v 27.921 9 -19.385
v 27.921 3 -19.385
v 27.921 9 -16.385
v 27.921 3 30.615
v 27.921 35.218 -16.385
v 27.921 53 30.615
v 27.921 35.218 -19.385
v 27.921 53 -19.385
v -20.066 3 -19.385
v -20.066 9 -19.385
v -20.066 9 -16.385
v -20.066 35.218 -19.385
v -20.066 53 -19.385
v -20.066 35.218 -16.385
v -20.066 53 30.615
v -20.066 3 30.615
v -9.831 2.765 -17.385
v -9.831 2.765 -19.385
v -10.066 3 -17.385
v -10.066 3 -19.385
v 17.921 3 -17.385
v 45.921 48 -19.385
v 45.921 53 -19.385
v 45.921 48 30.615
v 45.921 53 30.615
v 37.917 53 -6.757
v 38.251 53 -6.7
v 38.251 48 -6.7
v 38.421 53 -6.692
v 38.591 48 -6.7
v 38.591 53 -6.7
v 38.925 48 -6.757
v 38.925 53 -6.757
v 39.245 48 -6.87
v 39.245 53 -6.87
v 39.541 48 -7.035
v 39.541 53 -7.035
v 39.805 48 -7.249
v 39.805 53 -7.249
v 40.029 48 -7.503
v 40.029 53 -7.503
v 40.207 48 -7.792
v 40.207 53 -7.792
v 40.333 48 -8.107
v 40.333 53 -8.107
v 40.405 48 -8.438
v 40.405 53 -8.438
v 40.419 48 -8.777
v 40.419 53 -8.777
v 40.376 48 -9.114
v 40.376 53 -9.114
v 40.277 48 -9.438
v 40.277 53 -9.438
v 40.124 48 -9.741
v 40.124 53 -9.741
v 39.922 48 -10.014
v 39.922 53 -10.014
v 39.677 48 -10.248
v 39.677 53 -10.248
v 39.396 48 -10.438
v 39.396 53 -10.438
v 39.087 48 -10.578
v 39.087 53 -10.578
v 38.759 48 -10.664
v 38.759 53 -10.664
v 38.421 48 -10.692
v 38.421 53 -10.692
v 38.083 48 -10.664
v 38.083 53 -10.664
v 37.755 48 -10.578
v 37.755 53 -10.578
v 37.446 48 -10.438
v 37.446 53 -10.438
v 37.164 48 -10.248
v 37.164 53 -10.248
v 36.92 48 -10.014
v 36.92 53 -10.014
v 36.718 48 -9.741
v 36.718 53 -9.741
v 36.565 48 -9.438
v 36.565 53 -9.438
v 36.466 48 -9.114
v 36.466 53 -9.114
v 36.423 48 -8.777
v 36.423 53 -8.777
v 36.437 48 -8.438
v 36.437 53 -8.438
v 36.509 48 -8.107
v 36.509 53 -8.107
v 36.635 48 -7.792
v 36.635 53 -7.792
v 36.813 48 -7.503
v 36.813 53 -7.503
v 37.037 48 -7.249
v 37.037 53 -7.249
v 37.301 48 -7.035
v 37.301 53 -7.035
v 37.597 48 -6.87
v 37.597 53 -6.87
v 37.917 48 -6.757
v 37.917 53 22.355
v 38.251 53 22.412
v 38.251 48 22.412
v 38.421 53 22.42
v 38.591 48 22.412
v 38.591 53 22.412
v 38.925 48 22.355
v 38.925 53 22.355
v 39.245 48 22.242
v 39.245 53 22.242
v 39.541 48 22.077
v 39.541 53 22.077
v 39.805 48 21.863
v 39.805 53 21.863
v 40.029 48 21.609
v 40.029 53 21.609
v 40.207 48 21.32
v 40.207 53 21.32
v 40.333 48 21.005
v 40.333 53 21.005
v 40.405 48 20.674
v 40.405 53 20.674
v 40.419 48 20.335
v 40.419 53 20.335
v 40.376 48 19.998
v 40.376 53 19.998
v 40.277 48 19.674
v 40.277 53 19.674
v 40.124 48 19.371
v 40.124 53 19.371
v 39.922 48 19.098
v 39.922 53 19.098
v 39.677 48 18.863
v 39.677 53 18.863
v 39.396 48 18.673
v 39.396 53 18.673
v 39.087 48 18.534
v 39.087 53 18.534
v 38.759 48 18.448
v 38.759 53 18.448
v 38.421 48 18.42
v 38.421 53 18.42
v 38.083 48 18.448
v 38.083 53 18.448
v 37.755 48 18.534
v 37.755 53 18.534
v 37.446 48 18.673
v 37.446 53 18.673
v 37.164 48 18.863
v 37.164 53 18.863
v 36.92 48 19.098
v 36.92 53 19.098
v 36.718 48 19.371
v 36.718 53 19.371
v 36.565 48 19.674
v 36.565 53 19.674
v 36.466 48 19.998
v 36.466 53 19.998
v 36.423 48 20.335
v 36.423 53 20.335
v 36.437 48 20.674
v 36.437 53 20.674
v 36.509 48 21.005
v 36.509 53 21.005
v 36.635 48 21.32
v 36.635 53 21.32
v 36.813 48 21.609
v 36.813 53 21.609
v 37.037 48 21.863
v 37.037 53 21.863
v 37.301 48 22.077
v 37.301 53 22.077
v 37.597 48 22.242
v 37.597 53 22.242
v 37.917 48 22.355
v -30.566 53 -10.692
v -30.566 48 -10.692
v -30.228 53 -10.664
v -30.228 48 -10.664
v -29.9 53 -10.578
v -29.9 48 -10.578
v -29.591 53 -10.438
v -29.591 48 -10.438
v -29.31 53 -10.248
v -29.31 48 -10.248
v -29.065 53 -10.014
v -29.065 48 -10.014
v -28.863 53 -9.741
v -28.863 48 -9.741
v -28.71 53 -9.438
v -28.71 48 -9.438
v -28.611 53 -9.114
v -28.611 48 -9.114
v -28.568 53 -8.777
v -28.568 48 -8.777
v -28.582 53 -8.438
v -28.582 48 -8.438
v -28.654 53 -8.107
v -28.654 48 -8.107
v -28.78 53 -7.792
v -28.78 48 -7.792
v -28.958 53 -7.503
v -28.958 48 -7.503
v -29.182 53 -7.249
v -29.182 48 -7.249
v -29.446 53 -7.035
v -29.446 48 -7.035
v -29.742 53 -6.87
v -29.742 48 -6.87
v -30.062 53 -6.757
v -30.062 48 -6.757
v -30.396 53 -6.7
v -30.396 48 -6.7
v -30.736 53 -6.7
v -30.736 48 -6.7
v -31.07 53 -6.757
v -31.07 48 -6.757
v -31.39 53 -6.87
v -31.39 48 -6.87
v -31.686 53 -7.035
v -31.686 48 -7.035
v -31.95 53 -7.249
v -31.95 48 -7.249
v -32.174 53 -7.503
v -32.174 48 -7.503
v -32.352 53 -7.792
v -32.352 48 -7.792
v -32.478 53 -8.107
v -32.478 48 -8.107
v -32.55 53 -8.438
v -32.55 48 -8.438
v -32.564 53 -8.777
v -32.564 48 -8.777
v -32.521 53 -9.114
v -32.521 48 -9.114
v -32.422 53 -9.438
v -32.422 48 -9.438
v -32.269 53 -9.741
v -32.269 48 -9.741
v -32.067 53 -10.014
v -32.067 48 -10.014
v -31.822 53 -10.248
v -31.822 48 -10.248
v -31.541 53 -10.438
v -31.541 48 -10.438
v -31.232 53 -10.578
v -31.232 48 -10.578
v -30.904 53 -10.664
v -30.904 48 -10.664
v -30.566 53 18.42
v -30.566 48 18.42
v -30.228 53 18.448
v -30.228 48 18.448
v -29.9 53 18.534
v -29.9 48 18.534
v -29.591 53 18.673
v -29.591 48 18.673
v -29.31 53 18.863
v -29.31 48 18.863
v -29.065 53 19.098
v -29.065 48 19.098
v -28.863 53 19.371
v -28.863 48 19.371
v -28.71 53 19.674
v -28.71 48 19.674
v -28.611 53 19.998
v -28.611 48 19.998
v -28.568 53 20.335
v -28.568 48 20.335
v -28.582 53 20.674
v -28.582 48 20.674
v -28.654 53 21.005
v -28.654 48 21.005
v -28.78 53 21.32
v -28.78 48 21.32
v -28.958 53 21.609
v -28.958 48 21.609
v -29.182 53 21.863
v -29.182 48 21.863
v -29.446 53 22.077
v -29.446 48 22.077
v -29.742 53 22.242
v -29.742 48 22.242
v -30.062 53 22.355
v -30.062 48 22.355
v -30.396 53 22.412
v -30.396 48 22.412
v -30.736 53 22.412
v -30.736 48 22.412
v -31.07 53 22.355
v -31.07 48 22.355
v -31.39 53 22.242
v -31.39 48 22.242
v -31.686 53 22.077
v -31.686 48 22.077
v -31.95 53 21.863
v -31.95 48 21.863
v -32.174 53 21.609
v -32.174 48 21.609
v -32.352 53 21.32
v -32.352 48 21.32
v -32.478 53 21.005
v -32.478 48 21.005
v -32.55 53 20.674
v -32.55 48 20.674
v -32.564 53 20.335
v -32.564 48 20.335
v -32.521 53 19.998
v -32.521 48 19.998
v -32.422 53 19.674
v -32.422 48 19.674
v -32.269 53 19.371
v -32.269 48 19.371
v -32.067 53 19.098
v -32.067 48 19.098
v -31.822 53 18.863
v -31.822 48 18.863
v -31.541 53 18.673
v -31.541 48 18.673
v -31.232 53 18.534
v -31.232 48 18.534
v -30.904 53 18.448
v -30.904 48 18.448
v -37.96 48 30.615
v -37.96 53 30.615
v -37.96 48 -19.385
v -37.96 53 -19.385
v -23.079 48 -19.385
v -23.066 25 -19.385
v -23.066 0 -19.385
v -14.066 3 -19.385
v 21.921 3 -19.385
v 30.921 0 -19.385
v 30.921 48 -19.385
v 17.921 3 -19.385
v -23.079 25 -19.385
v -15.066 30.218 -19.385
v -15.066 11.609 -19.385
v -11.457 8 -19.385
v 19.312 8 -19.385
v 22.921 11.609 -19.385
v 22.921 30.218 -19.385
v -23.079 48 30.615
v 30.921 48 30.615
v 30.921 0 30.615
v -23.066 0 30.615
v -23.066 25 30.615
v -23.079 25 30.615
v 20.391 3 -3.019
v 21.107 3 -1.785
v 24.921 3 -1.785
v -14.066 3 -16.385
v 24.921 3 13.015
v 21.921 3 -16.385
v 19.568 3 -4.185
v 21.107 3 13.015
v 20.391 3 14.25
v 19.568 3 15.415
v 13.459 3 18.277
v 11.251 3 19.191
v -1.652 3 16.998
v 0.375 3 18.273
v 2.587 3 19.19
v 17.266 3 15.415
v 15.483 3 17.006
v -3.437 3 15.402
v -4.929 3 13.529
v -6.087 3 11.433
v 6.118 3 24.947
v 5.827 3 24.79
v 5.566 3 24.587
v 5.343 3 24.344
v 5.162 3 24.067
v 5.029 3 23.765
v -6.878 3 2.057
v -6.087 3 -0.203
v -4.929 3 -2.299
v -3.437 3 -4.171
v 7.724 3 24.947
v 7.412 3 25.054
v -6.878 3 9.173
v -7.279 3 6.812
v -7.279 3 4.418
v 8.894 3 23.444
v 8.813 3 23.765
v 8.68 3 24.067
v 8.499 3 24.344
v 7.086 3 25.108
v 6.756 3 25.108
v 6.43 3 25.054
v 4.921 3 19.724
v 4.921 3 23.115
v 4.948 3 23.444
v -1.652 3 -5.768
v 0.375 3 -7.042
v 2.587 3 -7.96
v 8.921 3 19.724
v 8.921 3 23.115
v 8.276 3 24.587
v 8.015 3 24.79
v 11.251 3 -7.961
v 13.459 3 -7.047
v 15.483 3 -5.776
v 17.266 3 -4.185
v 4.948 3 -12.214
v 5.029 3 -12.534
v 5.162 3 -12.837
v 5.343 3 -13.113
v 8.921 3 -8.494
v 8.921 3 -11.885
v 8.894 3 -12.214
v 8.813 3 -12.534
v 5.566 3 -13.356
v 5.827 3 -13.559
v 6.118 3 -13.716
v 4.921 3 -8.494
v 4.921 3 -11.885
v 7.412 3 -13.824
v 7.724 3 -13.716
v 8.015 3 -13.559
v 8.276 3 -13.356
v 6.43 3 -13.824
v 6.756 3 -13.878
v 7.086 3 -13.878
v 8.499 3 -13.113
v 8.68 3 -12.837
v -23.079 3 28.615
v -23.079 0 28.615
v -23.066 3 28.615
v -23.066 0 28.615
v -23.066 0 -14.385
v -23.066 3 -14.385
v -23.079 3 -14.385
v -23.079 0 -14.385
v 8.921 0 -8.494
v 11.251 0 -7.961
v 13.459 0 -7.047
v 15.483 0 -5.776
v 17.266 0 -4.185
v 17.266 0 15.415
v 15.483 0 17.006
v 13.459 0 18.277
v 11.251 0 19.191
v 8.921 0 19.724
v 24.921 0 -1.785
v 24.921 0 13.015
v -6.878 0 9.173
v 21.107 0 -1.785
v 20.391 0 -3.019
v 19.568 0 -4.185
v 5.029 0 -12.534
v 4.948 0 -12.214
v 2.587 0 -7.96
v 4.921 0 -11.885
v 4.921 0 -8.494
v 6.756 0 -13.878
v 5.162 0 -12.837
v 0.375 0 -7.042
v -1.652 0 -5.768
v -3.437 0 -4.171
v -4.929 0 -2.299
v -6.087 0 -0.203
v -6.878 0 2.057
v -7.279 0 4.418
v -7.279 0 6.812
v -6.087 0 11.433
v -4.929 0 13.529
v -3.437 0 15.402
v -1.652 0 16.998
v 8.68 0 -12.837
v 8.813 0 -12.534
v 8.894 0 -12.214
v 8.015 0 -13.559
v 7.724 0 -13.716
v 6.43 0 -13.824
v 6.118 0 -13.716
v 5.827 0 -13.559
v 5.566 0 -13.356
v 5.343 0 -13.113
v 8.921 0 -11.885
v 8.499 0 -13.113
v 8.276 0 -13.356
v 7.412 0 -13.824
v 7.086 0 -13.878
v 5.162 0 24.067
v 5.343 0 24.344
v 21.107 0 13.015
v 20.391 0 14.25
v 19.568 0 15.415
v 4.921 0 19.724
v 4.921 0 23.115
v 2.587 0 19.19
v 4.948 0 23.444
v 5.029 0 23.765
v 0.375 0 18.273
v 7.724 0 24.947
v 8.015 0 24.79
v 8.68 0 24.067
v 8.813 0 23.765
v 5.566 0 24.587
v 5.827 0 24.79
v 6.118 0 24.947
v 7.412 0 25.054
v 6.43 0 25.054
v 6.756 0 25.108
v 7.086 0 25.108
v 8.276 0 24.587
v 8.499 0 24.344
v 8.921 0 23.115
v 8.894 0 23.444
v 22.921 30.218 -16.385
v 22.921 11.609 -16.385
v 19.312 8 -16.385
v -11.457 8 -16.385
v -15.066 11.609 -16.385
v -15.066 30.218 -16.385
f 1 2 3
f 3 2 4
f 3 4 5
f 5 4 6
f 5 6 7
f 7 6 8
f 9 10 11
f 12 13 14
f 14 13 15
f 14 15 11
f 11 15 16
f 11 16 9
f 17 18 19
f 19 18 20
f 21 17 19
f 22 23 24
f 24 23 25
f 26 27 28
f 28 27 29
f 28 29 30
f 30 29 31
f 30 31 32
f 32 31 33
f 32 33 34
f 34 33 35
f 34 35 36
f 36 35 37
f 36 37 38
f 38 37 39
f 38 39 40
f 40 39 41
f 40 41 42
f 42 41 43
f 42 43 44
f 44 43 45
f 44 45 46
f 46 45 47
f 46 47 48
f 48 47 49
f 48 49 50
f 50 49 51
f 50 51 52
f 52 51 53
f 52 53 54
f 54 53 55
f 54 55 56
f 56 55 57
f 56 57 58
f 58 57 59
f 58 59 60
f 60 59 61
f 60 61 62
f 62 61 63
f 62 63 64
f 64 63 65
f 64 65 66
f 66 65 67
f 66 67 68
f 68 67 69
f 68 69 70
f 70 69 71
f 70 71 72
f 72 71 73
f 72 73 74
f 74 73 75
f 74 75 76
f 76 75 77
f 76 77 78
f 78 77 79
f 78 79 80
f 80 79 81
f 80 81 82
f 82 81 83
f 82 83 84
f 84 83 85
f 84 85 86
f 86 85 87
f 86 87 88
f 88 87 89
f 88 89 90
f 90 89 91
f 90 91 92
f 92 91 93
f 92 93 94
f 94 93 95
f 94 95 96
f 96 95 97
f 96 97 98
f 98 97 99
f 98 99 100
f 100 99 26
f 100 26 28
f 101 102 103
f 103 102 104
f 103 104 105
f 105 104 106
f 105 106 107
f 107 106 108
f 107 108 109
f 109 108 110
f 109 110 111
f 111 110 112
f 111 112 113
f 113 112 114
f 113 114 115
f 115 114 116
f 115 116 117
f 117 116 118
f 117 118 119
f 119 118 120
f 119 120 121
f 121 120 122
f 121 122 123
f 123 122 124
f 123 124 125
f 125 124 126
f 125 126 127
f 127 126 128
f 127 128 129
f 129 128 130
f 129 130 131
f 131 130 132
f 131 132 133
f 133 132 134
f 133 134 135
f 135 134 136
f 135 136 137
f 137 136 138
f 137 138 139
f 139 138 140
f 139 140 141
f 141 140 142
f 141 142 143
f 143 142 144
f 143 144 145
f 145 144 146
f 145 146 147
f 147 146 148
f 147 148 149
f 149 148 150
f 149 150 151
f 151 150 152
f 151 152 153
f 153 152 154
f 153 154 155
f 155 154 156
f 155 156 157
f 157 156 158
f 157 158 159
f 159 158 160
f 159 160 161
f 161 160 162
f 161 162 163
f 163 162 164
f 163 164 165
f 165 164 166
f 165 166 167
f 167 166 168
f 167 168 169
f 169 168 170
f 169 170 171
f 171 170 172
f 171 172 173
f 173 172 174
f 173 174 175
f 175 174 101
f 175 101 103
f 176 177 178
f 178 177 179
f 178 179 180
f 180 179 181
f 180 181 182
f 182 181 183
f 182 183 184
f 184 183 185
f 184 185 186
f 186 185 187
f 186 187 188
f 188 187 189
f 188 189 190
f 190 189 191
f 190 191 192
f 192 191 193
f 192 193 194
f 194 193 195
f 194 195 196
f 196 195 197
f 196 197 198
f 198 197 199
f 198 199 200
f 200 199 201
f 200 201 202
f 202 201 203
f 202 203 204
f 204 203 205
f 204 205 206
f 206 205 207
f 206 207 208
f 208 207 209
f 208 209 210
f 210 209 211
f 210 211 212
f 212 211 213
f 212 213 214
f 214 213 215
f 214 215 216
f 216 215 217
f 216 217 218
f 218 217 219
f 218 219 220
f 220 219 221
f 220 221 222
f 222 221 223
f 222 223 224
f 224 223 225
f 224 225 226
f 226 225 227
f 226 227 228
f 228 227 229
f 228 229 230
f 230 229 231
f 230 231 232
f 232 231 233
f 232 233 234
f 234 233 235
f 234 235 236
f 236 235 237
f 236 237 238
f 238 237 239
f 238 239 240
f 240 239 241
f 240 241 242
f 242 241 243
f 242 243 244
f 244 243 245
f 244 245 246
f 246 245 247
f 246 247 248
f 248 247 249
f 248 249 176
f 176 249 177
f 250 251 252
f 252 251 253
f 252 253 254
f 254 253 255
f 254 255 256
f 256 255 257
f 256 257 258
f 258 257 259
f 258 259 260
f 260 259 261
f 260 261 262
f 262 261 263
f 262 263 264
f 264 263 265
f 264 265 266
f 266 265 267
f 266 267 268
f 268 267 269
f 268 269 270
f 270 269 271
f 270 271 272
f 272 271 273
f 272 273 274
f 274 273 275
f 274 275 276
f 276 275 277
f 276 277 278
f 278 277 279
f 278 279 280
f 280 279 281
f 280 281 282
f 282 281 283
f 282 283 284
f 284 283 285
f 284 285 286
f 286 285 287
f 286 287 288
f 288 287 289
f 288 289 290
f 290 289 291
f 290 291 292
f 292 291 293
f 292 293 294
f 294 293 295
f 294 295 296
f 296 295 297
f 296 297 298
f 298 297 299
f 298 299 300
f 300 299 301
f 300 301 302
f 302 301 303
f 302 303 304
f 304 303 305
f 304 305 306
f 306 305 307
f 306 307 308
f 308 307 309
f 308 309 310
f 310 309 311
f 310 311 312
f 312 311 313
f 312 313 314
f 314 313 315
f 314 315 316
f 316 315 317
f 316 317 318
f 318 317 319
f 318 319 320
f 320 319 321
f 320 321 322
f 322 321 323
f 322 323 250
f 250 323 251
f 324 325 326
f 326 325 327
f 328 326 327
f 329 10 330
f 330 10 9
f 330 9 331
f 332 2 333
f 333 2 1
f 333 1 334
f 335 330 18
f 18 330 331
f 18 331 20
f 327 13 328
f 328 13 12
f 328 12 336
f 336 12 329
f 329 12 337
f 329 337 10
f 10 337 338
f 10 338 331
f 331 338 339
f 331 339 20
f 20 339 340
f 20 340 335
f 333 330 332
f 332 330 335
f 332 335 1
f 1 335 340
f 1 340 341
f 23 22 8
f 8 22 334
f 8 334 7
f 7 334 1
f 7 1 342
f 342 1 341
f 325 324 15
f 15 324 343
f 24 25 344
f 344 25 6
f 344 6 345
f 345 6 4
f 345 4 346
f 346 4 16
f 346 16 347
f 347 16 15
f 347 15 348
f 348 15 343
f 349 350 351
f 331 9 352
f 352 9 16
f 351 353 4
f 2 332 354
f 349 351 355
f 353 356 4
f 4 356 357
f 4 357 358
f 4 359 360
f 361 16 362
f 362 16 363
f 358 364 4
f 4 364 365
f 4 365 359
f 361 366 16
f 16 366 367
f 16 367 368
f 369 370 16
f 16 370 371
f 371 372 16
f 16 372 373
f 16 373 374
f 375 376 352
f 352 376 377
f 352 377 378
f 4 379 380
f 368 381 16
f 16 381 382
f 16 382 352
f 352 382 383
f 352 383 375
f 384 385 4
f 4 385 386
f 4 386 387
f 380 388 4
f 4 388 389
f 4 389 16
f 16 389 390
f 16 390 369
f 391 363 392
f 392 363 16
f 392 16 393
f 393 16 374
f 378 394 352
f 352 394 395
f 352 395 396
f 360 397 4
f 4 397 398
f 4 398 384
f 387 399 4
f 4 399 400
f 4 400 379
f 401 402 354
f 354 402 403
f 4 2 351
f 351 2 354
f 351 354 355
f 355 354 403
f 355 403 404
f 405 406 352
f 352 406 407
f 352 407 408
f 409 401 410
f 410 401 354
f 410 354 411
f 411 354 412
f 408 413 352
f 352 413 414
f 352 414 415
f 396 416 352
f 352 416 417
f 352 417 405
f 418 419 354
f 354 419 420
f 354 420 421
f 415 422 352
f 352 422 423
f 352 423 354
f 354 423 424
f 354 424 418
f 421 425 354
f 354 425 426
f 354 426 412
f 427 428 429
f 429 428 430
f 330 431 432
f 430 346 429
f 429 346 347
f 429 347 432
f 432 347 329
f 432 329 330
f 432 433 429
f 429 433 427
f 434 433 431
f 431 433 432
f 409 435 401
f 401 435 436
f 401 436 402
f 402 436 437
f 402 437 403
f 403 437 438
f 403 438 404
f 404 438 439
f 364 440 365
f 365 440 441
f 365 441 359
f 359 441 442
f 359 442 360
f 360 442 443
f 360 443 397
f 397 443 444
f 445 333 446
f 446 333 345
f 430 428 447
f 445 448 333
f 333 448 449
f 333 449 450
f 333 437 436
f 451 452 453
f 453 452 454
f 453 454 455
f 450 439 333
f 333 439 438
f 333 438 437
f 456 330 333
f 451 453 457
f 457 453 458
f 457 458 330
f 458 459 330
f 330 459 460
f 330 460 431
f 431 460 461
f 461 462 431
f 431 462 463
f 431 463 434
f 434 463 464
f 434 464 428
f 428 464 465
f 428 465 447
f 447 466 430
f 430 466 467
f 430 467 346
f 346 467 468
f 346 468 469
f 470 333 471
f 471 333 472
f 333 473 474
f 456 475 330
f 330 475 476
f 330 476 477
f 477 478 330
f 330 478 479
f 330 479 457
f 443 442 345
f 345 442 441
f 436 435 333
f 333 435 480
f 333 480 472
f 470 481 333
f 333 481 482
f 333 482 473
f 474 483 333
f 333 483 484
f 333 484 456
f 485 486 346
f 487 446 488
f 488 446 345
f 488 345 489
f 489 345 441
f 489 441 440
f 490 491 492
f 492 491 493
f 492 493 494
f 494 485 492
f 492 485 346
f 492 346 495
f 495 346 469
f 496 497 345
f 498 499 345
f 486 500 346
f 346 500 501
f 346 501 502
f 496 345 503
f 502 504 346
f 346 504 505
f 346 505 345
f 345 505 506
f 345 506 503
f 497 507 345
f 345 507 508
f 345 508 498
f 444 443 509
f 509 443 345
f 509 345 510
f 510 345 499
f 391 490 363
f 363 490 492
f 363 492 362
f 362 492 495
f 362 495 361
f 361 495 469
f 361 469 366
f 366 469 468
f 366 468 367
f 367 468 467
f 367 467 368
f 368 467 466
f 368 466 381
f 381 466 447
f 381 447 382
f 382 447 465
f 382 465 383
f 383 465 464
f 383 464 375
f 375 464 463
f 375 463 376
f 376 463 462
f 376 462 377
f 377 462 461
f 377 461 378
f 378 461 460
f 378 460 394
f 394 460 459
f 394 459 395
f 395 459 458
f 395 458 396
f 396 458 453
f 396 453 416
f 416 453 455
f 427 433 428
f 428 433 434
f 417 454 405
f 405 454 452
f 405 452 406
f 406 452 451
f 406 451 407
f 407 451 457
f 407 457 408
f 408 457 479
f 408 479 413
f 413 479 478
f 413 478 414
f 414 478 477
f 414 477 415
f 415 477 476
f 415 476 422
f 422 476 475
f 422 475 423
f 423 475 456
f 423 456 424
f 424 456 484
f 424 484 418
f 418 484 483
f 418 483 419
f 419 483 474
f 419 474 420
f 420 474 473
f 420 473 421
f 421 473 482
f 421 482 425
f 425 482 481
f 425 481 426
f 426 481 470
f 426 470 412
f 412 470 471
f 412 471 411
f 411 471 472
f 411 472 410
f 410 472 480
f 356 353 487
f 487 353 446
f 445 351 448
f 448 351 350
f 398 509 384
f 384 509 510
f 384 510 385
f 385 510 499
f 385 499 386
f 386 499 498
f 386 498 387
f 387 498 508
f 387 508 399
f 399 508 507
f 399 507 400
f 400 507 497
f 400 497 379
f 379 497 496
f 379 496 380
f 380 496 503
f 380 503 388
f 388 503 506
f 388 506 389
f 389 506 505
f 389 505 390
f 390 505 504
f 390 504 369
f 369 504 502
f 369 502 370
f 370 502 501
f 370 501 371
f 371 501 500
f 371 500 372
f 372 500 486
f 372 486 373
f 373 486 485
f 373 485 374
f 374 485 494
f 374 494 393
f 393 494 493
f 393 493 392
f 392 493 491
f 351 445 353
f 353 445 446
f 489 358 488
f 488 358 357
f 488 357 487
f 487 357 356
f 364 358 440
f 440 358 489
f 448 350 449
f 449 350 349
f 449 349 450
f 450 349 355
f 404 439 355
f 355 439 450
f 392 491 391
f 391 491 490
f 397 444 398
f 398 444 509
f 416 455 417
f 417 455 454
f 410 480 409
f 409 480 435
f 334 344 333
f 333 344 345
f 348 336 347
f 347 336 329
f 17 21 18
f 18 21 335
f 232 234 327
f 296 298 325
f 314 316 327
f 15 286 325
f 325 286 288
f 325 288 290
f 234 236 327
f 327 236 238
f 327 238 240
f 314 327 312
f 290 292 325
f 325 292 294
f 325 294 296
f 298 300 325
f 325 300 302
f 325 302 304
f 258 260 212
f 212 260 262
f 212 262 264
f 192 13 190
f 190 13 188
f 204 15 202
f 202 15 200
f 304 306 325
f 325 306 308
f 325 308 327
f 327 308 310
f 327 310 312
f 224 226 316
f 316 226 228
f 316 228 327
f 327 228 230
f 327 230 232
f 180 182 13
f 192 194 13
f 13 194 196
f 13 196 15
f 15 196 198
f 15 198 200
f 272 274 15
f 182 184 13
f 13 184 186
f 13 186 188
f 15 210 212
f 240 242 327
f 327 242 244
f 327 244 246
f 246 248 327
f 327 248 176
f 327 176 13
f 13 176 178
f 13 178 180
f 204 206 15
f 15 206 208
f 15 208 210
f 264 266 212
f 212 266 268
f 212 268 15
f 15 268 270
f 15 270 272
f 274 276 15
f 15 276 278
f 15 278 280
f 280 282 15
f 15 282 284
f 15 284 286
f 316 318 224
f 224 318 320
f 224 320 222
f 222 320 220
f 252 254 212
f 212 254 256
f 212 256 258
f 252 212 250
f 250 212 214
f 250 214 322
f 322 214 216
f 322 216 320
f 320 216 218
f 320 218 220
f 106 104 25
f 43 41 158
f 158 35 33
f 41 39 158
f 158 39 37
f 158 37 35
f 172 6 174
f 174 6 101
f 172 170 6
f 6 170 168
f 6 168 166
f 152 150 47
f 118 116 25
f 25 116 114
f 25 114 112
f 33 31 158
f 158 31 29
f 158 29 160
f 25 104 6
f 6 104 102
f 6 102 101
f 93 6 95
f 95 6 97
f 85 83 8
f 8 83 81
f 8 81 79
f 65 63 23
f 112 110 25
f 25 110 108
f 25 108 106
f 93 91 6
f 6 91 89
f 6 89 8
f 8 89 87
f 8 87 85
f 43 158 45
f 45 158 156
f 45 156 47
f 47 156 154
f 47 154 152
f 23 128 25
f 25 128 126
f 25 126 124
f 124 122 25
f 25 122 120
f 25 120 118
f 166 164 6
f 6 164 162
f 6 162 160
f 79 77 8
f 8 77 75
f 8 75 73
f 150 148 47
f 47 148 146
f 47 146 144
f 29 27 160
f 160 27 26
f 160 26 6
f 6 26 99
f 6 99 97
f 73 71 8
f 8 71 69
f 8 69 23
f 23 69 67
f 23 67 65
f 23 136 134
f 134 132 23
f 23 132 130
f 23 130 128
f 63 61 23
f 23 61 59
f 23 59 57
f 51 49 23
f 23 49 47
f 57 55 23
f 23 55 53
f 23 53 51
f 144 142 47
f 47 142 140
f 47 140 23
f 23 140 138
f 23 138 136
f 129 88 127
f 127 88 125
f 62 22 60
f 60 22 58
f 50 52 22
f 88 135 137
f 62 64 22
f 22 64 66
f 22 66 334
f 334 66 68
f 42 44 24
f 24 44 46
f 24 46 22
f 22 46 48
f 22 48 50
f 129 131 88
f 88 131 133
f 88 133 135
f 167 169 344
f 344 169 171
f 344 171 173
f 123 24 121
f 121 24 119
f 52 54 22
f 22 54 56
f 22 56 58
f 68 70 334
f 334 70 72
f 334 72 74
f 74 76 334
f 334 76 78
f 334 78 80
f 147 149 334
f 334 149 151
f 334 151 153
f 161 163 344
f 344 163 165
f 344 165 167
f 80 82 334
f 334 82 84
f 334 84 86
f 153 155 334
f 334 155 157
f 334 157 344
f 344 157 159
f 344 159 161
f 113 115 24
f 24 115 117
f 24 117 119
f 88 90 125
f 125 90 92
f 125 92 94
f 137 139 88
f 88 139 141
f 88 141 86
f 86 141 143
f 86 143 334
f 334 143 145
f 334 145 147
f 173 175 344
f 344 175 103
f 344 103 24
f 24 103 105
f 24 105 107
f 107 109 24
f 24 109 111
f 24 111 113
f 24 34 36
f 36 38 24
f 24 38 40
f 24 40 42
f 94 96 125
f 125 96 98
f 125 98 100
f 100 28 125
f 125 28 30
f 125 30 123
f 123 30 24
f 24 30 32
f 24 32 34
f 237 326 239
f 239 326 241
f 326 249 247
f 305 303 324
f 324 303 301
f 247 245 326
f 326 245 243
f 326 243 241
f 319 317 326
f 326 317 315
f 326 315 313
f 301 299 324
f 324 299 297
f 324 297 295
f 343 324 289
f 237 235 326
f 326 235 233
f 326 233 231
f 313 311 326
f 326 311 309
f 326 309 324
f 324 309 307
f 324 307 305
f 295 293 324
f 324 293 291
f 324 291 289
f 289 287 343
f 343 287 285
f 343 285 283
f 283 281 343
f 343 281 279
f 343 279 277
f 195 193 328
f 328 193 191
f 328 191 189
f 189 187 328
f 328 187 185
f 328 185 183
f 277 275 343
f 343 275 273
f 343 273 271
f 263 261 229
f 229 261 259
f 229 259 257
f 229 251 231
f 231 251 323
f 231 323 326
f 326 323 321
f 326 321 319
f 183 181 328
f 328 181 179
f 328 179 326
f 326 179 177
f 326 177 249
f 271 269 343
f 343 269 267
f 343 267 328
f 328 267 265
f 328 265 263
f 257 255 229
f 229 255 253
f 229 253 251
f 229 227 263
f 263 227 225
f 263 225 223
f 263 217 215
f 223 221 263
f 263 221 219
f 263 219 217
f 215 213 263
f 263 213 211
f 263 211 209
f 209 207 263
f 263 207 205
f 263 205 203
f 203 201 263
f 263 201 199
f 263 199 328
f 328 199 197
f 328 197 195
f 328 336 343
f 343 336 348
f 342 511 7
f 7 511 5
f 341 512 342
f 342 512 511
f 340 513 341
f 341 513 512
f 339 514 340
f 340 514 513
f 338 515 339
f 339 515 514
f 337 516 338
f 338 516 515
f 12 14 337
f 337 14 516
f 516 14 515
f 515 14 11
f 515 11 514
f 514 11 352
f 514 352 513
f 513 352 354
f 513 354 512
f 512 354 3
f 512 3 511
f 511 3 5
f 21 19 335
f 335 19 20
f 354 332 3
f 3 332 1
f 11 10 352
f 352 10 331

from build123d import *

# Parameters (mm, degrees)
SKETCH1_W                = 50
SKETCH1_H                = 40
BOSS_EXTRUDE1_DEPTH      = 3
SKETCH6_R                = 2
CUT_EXTRUDE9_DEPTH       = 5
SKETCH16_W               = 14.8
SKETCH16_H               = 3
CUT_EXTRUDE10_DEPTH      = 0.5
SKETCH21_R               = 14.25
CUT_EXTRUDE15_DEPTH      = 4
CUT_EXTRUDE16_START      = -4
CUT_EXTRUDE16_DEPTH      = 4
SKETCH33_W               = 4
SKETCH33_H               = 35
CUT_EXTRUDE23_DEPTH      = 5
SKETCH34_W               = 49.986920535
SKETCH34_H               = 3
BOSS_EXTRUDE2_DEPTH      = 3
SKETCH35_W               = 50
SKETCH35_H               = 3
BOSS_EXTRUDE3_DEPTH      = 3
SKETCH36_W               = 46
SKETCH36_H               = 3
BOSS_EXTRUDE4_DEPTH      = 4
SKETCH38_W               = 3
SKETCH38_H               = 46
BOSS_EXTRUDE5_DEPTH      = 25
SKETCH39_W               = 45.535565308
SKETCH39_H               = 3
BOSS_EXTRUDE6_DEPTH      = 15
SKETCH40_W               = 46
SKETCH40_H               = 3
BOSS_EXTRUDE7_DEPTH      = 15
SKETCH41_W               = 0.464434692
SKETCH41_H               = 3
BOSS_EXTRUDE8_DEPTH      = 15
SKETCH42_R               = 2
CUT_EXTRUDE24_DEPTH      = 15
SKETCH43_R               = 2
CUT_EXTRUDE25_DEPTH      = 15
BOSS_EXTRUDE10_START     = 1
SKETCH44_W               = 14.986920535
SKETCH44_H               = 46
SKETCH44_R               = 2
BOSS_EXTRUDE10_DEPTH     = 1
BOSS_EXTRUDE11_START     = 1
SKETCH46_W               = 15
SKETCH46_H               = 46
SKETCH46_R               = 2
BOSS_EXTRUDE11_DEPTH     = 1
BOSS_EXTRUDE12_DEPTH     = 2
BOSS_EXTRUDE13_DEPTH     = 2
SKETCH49_W               = 47.986920535
SKETCH49_H               = 2
BOSS_EXTRUDE14_DEPTH     = 10
CUT_EXTRUDE26_DEPTH      = 10
SKETCH51_W               = 15
SKETCH51_H               = 50
SKETCH51_R               = 2
SKETCH51_W_2             = 3.013079465
SKETCH51_W_3             = 3
BOSS_EXTRUDE15_DEPTH     = 25
CUT_EXTRUDE27_DEPTH      = 63.345980453
CUT_EXTRUDE27_DEPTH_BACK = 63.345980453
SKETCH53_R               = 2
SKETCH54_W               = 15
SKETCH54_H               = 50
CUT_EXTRUDE28_DEPTH      = 48
SKETCH55_W               = 46
SKETCH55_H               = 4
CUT_EXTRUDE29_DEPTH      = 3
SKETCH56_W               = 5
SKETCH56_H               = 5
BOSS_EXTRUDE18_DEPTH     = 1
BOSS_EXTRUDE19_DEPTH     = 2
CUT_EXTRUDE30_DEPTH      = 3


with BuildPart() as part:
    # Sketch1 → Boss-Extrude1 (new body)
    with BuildSketch(Plane(origin=(0, 0, 0), x_dir=(1, 0, 0), z_dir=(0, 1, 0))):
        with Locations((1.920937393, -5.615172506)):
            Rectangle(SKETCH1_W, SKETCH1_H)
    extrude(amount=BOSS_EXTRUDE1_DEPTH)

    # Sketch6 → Cut-Extrude9 (cut)
    with BuildSketch(Plane.XZ):
        with Locations(Location((6.920937393, 23.115172506, 0), (0, 0, 270))):
            Circle(SKETCH6_R)
        with Locations(Location((6.920937393, -11.884827494, 0), (0, 0, 270))):
            Circle(SKETCH6_R)
        with BuildLine():
            Line((24.420937393, 13.015172506), (18.923020545, 13.015172506))
            ThreePointArc((18.923020545, 13.015172506), (-7.179062607, 5.615172506), (18.923020545, -1.784827494))
            Line((18.923020545, -1.784827494), (24.420937393, -1.784827494))
            Line((24.420937393, -1.784827494), (24.420937393, 5.615172506))
            Line((24.420937393, 5.615172506), (24.420937393, 13.015172506))
        make_face()
    extrude(amount=-CUT_EXTRUDE9_DEPTH, mode=Mode.SUBTRACT)

    # Sketch16 → Cut-Extrude10 (cut)
    with BuildSketch(Plane.ZY.offset(-24.420937393)):
        with Locations((5.615172506, 1.5)):
            Rectangle(SKETCH16_W, SKETCH16_H)
    extrude(amount=-CUT_EXTRUDE10_DEPTH, mode=Mode.SUBTRACT)

    # Sketch21 → Cut-Extrude15 (cut)
    with BuildSketch(Plane(origin=(0, 0, 0), x_dir=(-1, 0, 0), z_dir=(0, -1, 0))):
        with Locations((-6.920937393, -5.615172506)):
            Circle(SKETCH21_R)
    extrude(amount=-CUT_EXTRUDE15_DEPTH, mode=Mode.SUBTRACT)

    # Sketch22 → Cut-Extrude16 (cut)
    with BuildSketch(Plane(origin=(0, 3, 0), x_dir=(1, 0, 0), z_dir=(0, 1, 0)).offset(CUT_EXTRUDE16_START)):
        with BuildLine():
            ThreePointArc((21.106680727, 1.784827494), (20.39103932, 3.019158274), (19.568281538, 4.184827494))
            Line((19.568281538, 4.184827494), (17.266105347, 4.184827494))
            ThreePointArc((17.266105347, 4.184827494), (18.246250908, 3.03351374), (19.09888878, 1.784827494))
            Line((19.09888878, 1.784827494), (21.106680727, 1.784827494))
        make_face()
        with BuildLine():
            Line((17.266105347, -15.415172506), (19.568281538, -15.415172506))
            ThreePointArc((19.568281538, -15.415172506), (20.39103932, -14.249503286), (21.106680727, -13.015172506))
            Line((21.106680727, -13.015172506), (19.09888878, -13.015172506))
            ThreePointArc((19.09888878, -13.015172506), (18.246250908, -14.263858752), (17.266105347, -15.415172506))
        make_face()
    extrude(amount=CUT_EXTRUDE16_DEPTH, mode=Mode.SUBTRACT)

    # Sketch33 → Cut-Extrude23 (cut)
    with BuildSketch(Plane(origin=(0, 3, 0), x_dir=(1, 0, 0), z_dir=(0, 1, 0))):
        with Locations((6.920937393, -5.615172506)):
            Rectangle(SKETCH33_W, SKETCH33_H)
    extrude(amount=-CUT_EXTRUDE23_DEPTH, mode=Mode.SUBTRACT)

    # Sketch34 → Boss-Extrude2 (add)
    with BuildSketch(Plane(origin=(0, 0, -14.384827494), x_dir=(-1, 0, 0), z_dir=(0, 0, -1))):
        with Locations((-1.927477126, 1.5)):
            Rectangle(SKETCH34_W, SKETCH34_H)
    extrude(amount=BOSS_EXTRUDE2_DEPTH)

    # Sketch35 → Boss-Extrude3 (add)
    with BuildSketch(Plane.XY.offset(25.615172506)):
        with Locations((1.920937393, 1.5)):
            Rectangle(SKETCH35_W, SKETCH35_H)
    extrude(amount=BOSS_EXTRUDE3_DEPTH)

    # Sketch36 → Boss-Extrude4 (add)
    with BuildSketch(Plane(origin=(26.920937393, 0, 0), x_dir=(0, 0, -1), z_dir=(1, 0, 0))):
        with Locations((-5.615172506, 1.5)):
            Rectangle(SKETCH36_W, SKETCH36_H)
    extrude(amount=BOSS_EXTRUDE4_DEPTH)

    # Sketch38 → Boss-Extrude5 (add)
    with BuildSketch(Plane(origin=(0, 3, 0), x_dir=(1, 0, 0), z_dir=(0, 1, 0))):
        with Locations((29.420937393, -5.615172506)):
            Rectangle(SKETCH38_W, SKETCH38_H)
        with Locations((-21.565983142, -5.615172506)):
            Rectangle(SKETCH38_W, SKETCH38_H)
    extrude(amount=BOSS_EXTRUDE5_DEPTH)

    # Sketch39 → Boss-Extrude6 (add)
    with BuildSketch(Plane.ZY.offset(23.065983142)):
        with Locations((5.38295516, 26.5)):
            Rectangle(SKETCH39_W, SKETCH39_H)
    extrude(amount=BOSS_EXTRUDE6_DEPTH)

    # Sketch40 → Boss-Extrude7 (add)
    with BuildSketch(Plane(origin=(30.920937393, 0, 0), x_dir=(0, 0, -1), z_dir=(1, 0, 0))):
        with Locations((-5.615172506, 26.5)):
            Rectangle(SKETCH40_W, SKETCH40_H)
    extrude(amount=BOSS_EXTRUDE7_DEPTH)

    # Sketch41 → Boss-Extrude8 (add)
    with BuildSketch(Plane.ZY.offset(23.065983142)):
        with Locations((28.38295516, 26.5)):
            Rectangle(SKETCH41_W, SKETCH41_H)
    extrude(amount=BOSS_EXTRUDE8_DEPTH)

    # Sketch42 → Cut-Extrude24 (cut)
    with BuildSketch(Plane.XZ.offset(-25)):
        with Locations(Location((38.420937393, 20.419520332, 0), (0, 0, 270))):
            Circle(SKETCH42_R)
        with Locations(Location((38.420937393, -8.692413747, 0), (0, 0, 270))):
            Circle(SKETCH42_R)
    extrude(amount=-CUT_EXTRUDE24_DEPTH, mode=Mode.SUBTRACT)

    # Sketch43 → Cut-Extrude25 (cut)
    with BuildSketch(Plane.XZ.offset(-25)):
        with Locations(Location((-30.565983142, 20.419520332, 0), (0, 0, 270))):
            Circle(SKETCH43_R)
        with Locations(Location((-30.565983142, -8.692413747, 0), (0, 0, 270))):
            Circle(SKETCH43_R)
    extrude(amount=-CUT_EXTRUDE25_DEPTH, mode=Mode.SUBTRACT)

    # Sketch44 → Boss-Extrude10 (add)
    with BuildSketch(Plane.XZ.offset(-25).offset(BOSS_EXTRUDE10_START)):
        with Locations((-30.572522875, 5.615172506)):
            Rectangle(SKETCH44_W, SKETCH44_H)
        with Locations(Location((-30.565983142, -8.692413747, 0), (0, 0, 270))):
            Circle(SKETCH44_R, mode=Mode.SUBTRACT)
        with Locations(Location((-30.565983142, 20.419520332, 0), (0, 0, 270))):
            Circle(SKETCH44_R, mode=Mode.SUBTRACT)
    extrude(amount=-BOSS_EXTRUDE10_DEPTH)

    # Sketch46 → Boss-Extrude11 (add)
    with BuildSketch(Plane.XZ.offset(-25).offset(BOSS_EXTRUDE11_START)):
        with Locations((38.420937393, 5.615172506)):
            Rectangle(SKETCH46_W, SKETCH46_H)
        with Locations(Location((38.420937393, -8.692413747, 0), (0, 0, 270))):
            Circle(SKETCH46_R, mode=Mode.SUBTRACT)
        with Locations(Location((38.420937393, 20.419520332, 0), (0, 0, 270))):
            Circle(SKETCH46_R, mode=Mode.SUBTRACT)
    extrude(amount=-BOSS_EXTRUDE11_DEPTH)

    # Sketch47 → Boss-Extrude12 (add)
    with BuildSketch(Plane(origin=(0, 0, -17.384827494), x_dir=(-1, 0, 0), z_dir=(0, 0, -1))):
        Polygon((-27.920937393, 28), (-45.920937393, 28), (-45.920937393, 24), (-30.920937393, 24), (-30.920937393, 0), (23.065983142, 0), (23.065983142, 3), (23.065983142, 25), (23.079062607, 25), (23.079062607, 24), (37.960253495, 24), (37.960253495, 28), (20.065983142, 28), (20.065983142, 3), (-27.920937393, 3), align=None)
    extrude(amount=BOSS_EXTRUDE12_DEPTH)

    # Sketch48 → Boss-Extrude13 (add)
    with BuildSketch(Plane.XY.offset(28.615172506)):
        Polygon((-20.065983142, 28), (-37.960253495, 28), (-37.960253495, 24), (-23.079062607, 24), (-23.079062607, 25), (-23.065983142, 25), (-23.065983142, 3), (-23.065983142, 0), (30.920937393, 0), (30.920937393, 24), (45.920937393, 24), (45.920937393, 28), (27.920937393, 28), (27.920937393, 3), (-20.065983142, 3), align=None)
    extrude(amount=BOSS_EXTRUDE13_DEPTH)

    # Sketch49 → Boss-Extrude14 (add)
    with BuildSketch(Plane(origin=(0, 3, 0), x_dir=(1, 0, 0), z_dir=(0, 1, 0))):
        with Locations((3.927477126, 18.384827494)):
            Rectangle(SKETCH49_W, SKETCH49_H)
    extrude(amount=BOSS_EXTRUDE14_DEPTH)

    # Sketch50 → Cut-Extrude26 (cut)
    with BuildSketch(Plane.XY.offset(-17.384827494)):
        Polygon((-20.065983142, 13), (-9.830586805, 2.764603663), (17.920937393, 3), (27.920937393, 13), align=None)
    extrude(amount=-CUT_EXTRUDE26_DEPTH, mode=Mode.SUBTRACT)

    # Sketch51 → Boss-Extrude15 (add)
    # profile 1 of 4: a face of its own
    with BuildSketch(Plane(origin=(0, 28, 0), x_dir=(1, 0, 0), z_dir=(0, 1, 0))):
        with Locations((38.420937393, -5.615172506)):
            Rectangle(SKETCH51_W, SKETCH51_H)
        with Locations(Location((38.420937393, -20.419520332, 0), (0, 0, 90))):
            Circle(SKETCH51_R, mode=Mode.SUBTRACT)
        with Locations(Location((38.420937393, 8.692413747, 0), (0, 0, 90))):
            Circle(SKETCH51_R, mode=Mode.SUBTRACT)
    # profile 2 of 4: a face of its own
    with BuildSketch(Plane(origin=(0, 28, 0), x_dir=(1, 0, 0), z_dir=(0, 1, 0))):
        Polygon((-23.079062607, 19.384827494), (-37.960253495, 19.384827494), (-37.960253495, 17.384827494), (-37.960253495, -28.615172506), (-37.960253495, -30.615172506), (-23.079062607, -30.615172506), align=None)
    # profile 3 of 4: a face of its own
    with BuildSketch(Plane(origin=(0, 28, 0), x_dir=(1, 0, 0), z_dir=(0, 1, 0))):
        with Locations((-21.572522875, -5.615172506)):
            Rectangle(SKETCH51_W_2, SKETCH51_H)
    # profile 4 of 4: a face of its own
    with BuildSketch(Plane(origin=(0, 28, 0), x_dir=(1, 0, 0), z_dir=(0, 1, 0))):
        with Locations((29.420937393, -5.615172506)):
            Rectangle(SKETCH51_W_3, SKETCH51_H)
    extrude(amount=BOSS_EXTRUDE15_DEPTH)

    # Sketch53 → Cut-Extrude27 (cut, two sides: drawn at the far end of the back side and taken through both)
    with BuildSketch(Plane.XZ.offset(-24).offset(-CUT_EXTRUDE27_DEPTH_BACK)):
        with Locations(Location((-30.565983142, 20.419520332, 0), (0, 0, 270))):
            Circle(SKETCH53_R)
        with Locations(Location((-30.565983142, -8.692413747, 0), (0, 0, 270))):
            Circle(SKETCH53_R)
    extrude(amount=CUT_EXTRUDE27_DEPTH + CUT_EXTRUDE27_DEPTH_BACK, mode=Mode.SUBTRACT)

    # Sketch54 → Cut-Extrude28 (cut)
    with BuildSketch(Plane(origin=(0, 0, 0), x_dir=(-1, 0, 0), z_dir=(0, -1, 0))):
        Polygon((23.079062607, -30.615172506), (37.960253495, -30.615172506), (37.960253495, 19.384827494), (23.079062607, 19.384827494), (23.079062607, 14.384827494), (23.079062607, -28.615172506), align=None)
        with Locations((-38.420937393, -5.615172506)):
            Rectangle(SKETCH54_W, SKETCH54_H)
    extrude(amount=-CUT_EXTRUDE28_DEPTH, mode=Mode.SUBTRACT)


with BuildPart() as cut_extrude28_piece_1:
    # of the separate pieces the step leaves, piece 1, a body of its own (cut_extrude28_pieces)
    add(part.part.solids().sort_by_distance((-23.079062607, 0, -14.384827494))[0])

    # Sketch56 → Boss-Extrude18 (add)
    with BuildSketch(Plane.XY.offset(-17.384827494)):
        Polygon((-11.456856729, 8), (-15.065983142, 11.609126412), (-15.065983142, 8), align=None)
        Polygon((-6.456856729, 3), (-11.456856729, 8), (-15.065983142, 8), (-10.065983142, 3), align=None)
        Polygon((-15.065983142, 11.609126412), (-20.065983142, 16.609126412), (-20.065983142, 13), (-15.065983142, 8), align=None)
        Polygon((-20.065983142, 30.218252825), (-20.065983142, 16.609126412), (-15.065983142, 30.218252825), align=None)
        Polygon((-15.065983142, 30.218252825), (-20.065983142, 16.609126412), (-15.065983142, 11.609126412), align=None)
        Polygon((19.31181098, 8), (-11.456856729, 8), (-6.456856729, 3), (14.31181098, 3), align=None)
        Polygon((22.920937393, 8), (19.31181098, 8), (14.31181098, 3), (22.920937393, 3), align=None)
        Polygon((22.920937393, 11.609126412), (19.31181098, 8), (22.920937393, 8), align=None)
        Polygon((22.920937393, 11.609126412), (22.920937393, 8), (27.920937393, 8), (27.920937393, 16.609126412), align=None)
        Polygon((22.920937393, 30.218252825), (22.920937393, 11.609126412), (27.920937393, 16.609126412), (27.920937393, 30.218252825), align=None)
        Polygon((-15.065983142, 30.218252825), (-20.065983142, 35.218252825), (-20.065983142, 30.218252825), align=None)
        Polygon((27.920937393, 35.218252825), (27.920937393, 30.218252825), (22.920937393, 30.218252825), align=None)
        with Locations((25.420937393, 5.5)):
            Rectangle(SKETCH56_W, SKETCH56_H)
        with Locations((-17.565983142, 5.5)):
            Rectangle(SKETCH56_W, SKETCH56_H)
        Polygon((-10.065983142, 3), (-15.065983142, 8), (-15.065983142, 3), align=None)
        Polygon((-15.065983142, 8), (-20.065983142, 13), (-20.065983142, 8), align=None)
    extrude(amount=BOSS_EXTRUDE18_DEPTH)

    # Sketch57 → Boss-Extrude19 (add)
    with BuildSketch(Plane(origin=(0, 0, -17.384827494), x_dir=(-1, 0, 0), z_dir=(0, 0, -1))):
        Polygon((-22.920937393, 30.218252825), (-27.920937393, 35.218252825), (-27.920937393, 13), (-17.920937393, 3), (10.065983142, 3), (20.065983142, 13), (20.065983142, 35.218252825), (15.065983142, 30.218252825), (15.065983142, 11.609126412), (11.456856729, 8), (-19.31181098, 8), (-22.920937393, 11.609126412), align=None)
    extrude(amount=BOSS_EXTRUDE19_DEPTH)

    # Sketch58 → Cut-Extrude30 (cut)
    with BuildSketch(Plane.XY.offset(-16.384827494)):
        Polygon((-20.065983142, 3), (-14.065983142, 3), (-20.065983142, 9), align=None)
        Polygon((27.920937393, 3), (27.920937393, 9), (21.920937393, 3), align=None)
    extrude(amount=-CUT_EXTRUDE30_DEPTH, mode=Mode.SUBTRACT)


with BuildPart() as cut_extrude28_piece_2:
    # of the separate pieces the step leaves, piece 2, a body of its own (cut_extrude28_pieces)
    add(part.part.solids().sort_by_distance((-37.960253495, 24, 28.615172506))[0])

    # Sketch55 → Cut-Extrude29 (cut)
    with BuildSketch(Plane.ZY.offset(38.065983142)):
        with Locations((5.615172506, 26)):
            Rectangle(SKETCH55_W, SKETCH55_H)
    extrude(amount=-CUT_EXTRUDE29_DEPTH, mode=Mode.SUBTRACT)


solid = cut_extrude28_piece_1.part
